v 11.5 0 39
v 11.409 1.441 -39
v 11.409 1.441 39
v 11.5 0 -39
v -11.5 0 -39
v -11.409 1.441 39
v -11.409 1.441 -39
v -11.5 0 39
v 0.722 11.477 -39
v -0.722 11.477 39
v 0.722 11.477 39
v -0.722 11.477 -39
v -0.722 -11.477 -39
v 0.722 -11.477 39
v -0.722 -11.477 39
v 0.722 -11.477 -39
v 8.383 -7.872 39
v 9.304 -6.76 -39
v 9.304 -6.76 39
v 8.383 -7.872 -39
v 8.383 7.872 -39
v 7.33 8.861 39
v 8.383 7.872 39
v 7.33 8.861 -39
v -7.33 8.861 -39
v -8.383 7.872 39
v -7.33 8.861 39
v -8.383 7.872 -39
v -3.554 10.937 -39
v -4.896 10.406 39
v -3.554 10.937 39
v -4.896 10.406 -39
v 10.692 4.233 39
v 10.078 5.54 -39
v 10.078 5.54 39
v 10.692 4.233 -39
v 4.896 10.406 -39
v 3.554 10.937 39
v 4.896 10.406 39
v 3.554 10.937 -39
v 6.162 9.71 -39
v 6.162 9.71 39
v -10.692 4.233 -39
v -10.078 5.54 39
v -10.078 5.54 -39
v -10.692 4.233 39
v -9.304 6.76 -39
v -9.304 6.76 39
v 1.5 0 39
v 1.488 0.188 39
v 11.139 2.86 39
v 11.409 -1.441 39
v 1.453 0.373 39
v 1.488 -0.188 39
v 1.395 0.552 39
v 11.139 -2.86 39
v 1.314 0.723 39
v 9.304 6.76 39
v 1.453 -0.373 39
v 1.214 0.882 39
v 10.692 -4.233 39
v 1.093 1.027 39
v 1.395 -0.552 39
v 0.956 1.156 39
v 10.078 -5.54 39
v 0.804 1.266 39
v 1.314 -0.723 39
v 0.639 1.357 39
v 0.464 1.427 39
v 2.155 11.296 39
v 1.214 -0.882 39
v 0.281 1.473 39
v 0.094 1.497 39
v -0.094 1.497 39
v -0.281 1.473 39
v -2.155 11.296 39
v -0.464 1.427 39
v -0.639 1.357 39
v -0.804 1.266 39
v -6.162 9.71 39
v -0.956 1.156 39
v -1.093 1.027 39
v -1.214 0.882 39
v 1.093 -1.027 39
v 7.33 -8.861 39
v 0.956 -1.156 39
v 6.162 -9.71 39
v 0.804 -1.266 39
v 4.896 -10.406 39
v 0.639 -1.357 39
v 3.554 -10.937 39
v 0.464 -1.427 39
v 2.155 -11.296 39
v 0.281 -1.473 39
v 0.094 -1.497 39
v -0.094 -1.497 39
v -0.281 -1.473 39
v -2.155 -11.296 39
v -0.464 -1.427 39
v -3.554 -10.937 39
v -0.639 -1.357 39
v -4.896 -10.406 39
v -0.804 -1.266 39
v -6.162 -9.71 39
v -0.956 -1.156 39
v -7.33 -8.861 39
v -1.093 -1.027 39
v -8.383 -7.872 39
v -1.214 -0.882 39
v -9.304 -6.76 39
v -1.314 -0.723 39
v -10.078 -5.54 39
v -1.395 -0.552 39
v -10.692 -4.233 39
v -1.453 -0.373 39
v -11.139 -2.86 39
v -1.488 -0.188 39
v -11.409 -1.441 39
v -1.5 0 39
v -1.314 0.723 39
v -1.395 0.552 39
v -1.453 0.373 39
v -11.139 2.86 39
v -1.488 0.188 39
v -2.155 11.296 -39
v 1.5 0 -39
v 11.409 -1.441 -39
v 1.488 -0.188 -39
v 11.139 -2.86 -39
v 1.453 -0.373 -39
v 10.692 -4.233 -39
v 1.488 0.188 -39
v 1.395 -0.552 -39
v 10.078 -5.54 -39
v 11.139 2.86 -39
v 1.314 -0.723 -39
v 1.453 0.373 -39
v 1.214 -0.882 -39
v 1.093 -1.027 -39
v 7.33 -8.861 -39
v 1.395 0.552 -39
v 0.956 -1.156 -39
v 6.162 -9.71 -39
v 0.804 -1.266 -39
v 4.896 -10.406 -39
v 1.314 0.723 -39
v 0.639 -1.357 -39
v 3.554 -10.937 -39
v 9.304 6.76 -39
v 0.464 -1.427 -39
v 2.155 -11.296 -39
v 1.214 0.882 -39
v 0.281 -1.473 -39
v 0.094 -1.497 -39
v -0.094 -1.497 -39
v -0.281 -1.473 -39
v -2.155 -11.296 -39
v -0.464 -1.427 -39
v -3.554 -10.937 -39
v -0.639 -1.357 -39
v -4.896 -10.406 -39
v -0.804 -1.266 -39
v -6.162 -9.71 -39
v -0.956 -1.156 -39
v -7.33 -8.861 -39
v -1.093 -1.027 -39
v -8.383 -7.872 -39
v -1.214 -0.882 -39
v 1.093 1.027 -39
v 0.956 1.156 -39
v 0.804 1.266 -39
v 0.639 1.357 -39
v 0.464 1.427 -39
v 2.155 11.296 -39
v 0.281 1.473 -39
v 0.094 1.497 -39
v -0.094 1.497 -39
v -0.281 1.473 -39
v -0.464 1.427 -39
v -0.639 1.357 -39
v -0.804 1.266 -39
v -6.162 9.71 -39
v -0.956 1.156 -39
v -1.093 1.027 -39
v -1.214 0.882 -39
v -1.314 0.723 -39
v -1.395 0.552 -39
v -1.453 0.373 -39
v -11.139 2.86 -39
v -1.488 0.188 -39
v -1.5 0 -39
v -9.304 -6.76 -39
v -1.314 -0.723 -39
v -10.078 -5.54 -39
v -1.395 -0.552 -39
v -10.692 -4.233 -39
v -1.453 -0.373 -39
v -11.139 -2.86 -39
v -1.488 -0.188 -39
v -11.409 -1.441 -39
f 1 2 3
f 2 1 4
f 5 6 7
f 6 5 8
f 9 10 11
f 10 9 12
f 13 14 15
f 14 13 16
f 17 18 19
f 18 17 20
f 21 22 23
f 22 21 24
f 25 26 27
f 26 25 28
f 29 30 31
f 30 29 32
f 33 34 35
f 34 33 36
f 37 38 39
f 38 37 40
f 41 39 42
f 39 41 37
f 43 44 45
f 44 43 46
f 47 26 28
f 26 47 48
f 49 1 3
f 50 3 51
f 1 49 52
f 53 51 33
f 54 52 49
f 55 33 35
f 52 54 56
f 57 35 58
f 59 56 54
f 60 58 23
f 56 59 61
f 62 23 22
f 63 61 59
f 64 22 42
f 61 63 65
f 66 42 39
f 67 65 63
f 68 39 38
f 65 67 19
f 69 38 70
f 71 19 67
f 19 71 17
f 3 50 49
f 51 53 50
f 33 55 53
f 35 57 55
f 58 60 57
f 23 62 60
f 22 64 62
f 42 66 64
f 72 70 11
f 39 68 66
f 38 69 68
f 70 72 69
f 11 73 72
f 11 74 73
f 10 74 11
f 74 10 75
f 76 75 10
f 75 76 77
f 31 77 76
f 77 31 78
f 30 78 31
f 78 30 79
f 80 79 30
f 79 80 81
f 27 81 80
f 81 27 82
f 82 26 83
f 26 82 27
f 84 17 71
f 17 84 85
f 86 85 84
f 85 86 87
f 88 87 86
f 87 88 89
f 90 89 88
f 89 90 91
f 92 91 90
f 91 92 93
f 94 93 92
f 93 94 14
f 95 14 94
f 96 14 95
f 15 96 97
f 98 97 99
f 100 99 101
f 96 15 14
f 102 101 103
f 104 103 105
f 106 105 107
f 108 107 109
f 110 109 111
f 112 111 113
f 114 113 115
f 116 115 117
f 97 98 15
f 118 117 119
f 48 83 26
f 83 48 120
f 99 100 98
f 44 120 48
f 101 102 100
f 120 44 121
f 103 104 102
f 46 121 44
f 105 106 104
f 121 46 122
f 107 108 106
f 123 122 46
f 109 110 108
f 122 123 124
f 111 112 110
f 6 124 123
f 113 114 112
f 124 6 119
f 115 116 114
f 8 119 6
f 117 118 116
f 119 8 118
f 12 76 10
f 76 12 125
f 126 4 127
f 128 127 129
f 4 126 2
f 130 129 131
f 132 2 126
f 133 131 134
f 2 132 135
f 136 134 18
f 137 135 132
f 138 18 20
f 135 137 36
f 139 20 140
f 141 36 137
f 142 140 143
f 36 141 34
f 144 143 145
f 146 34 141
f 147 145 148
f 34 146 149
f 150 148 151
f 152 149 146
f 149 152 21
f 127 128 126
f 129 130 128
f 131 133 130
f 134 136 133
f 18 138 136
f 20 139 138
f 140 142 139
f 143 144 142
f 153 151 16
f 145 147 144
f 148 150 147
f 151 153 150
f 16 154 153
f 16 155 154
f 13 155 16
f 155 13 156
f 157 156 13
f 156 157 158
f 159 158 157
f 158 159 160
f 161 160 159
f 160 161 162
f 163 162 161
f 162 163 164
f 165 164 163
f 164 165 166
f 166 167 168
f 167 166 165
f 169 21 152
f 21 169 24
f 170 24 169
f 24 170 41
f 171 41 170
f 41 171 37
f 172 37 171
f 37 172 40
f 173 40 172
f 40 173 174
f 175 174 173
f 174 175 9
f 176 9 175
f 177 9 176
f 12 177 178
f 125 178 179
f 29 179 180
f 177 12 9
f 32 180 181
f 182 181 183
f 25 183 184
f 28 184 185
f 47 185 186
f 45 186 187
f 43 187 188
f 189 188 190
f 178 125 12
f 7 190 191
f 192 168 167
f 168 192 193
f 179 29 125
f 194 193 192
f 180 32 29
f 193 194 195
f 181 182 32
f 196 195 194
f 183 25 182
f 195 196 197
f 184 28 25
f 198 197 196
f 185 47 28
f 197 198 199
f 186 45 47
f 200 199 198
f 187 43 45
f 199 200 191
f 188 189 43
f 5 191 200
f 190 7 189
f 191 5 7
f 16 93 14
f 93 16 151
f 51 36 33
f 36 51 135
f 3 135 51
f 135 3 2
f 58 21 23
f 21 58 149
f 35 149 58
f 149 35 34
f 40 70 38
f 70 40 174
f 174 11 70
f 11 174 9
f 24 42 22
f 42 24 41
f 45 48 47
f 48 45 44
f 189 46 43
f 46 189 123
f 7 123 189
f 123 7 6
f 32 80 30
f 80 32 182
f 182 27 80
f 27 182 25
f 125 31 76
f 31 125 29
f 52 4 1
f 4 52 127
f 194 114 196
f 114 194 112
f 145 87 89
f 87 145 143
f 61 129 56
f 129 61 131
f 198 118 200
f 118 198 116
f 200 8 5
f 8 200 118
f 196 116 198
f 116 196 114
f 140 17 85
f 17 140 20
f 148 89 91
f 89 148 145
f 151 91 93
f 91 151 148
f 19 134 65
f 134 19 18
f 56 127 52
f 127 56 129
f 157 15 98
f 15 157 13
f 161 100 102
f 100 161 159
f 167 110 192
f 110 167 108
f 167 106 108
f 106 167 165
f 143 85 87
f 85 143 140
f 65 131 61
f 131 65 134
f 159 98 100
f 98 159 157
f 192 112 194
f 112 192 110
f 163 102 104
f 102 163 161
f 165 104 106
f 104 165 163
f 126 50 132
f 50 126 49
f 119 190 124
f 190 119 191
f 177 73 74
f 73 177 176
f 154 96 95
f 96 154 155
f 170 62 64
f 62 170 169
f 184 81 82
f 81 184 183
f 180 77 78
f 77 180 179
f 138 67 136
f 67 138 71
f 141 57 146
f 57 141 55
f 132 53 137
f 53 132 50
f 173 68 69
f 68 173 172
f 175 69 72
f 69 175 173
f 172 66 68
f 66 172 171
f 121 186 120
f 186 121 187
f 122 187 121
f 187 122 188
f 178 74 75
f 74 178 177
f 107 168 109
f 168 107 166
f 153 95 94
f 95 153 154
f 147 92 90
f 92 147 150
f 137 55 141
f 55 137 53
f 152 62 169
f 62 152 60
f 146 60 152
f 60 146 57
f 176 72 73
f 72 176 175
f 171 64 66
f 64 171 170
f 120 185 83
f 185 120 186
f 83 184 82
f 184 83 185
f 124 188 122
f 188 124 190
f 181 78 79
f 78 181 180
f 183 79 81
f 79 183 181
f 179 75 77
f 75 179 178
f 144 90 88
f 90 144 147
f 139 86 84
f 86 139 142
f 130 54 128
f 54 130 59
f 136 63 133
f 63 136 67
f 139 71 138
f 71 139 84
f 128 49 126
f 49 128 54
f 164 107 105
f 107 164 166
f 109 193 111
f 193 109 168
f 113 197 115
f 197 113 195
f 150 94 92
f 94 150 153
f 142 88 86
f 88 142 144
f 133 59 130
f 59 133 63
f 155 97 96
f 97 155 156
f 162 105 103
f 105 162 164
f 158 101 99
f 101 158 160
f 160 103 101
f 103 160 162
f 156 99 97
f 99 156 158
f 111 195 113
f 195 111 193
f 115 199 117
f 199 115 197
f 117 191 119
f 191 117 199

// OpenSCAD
$fn = 50;


difference() {
	union() {
		translate(v = [0, 0, -39.0000000000]) {
			cylinder(h = 78, r = 11.5000000000);
		}
	}
	union() {
		translate(v = [0, 0, -100.0000000000]) {
			cylinder(h = 200, r = 1.5000000000);
		}
	}
}
